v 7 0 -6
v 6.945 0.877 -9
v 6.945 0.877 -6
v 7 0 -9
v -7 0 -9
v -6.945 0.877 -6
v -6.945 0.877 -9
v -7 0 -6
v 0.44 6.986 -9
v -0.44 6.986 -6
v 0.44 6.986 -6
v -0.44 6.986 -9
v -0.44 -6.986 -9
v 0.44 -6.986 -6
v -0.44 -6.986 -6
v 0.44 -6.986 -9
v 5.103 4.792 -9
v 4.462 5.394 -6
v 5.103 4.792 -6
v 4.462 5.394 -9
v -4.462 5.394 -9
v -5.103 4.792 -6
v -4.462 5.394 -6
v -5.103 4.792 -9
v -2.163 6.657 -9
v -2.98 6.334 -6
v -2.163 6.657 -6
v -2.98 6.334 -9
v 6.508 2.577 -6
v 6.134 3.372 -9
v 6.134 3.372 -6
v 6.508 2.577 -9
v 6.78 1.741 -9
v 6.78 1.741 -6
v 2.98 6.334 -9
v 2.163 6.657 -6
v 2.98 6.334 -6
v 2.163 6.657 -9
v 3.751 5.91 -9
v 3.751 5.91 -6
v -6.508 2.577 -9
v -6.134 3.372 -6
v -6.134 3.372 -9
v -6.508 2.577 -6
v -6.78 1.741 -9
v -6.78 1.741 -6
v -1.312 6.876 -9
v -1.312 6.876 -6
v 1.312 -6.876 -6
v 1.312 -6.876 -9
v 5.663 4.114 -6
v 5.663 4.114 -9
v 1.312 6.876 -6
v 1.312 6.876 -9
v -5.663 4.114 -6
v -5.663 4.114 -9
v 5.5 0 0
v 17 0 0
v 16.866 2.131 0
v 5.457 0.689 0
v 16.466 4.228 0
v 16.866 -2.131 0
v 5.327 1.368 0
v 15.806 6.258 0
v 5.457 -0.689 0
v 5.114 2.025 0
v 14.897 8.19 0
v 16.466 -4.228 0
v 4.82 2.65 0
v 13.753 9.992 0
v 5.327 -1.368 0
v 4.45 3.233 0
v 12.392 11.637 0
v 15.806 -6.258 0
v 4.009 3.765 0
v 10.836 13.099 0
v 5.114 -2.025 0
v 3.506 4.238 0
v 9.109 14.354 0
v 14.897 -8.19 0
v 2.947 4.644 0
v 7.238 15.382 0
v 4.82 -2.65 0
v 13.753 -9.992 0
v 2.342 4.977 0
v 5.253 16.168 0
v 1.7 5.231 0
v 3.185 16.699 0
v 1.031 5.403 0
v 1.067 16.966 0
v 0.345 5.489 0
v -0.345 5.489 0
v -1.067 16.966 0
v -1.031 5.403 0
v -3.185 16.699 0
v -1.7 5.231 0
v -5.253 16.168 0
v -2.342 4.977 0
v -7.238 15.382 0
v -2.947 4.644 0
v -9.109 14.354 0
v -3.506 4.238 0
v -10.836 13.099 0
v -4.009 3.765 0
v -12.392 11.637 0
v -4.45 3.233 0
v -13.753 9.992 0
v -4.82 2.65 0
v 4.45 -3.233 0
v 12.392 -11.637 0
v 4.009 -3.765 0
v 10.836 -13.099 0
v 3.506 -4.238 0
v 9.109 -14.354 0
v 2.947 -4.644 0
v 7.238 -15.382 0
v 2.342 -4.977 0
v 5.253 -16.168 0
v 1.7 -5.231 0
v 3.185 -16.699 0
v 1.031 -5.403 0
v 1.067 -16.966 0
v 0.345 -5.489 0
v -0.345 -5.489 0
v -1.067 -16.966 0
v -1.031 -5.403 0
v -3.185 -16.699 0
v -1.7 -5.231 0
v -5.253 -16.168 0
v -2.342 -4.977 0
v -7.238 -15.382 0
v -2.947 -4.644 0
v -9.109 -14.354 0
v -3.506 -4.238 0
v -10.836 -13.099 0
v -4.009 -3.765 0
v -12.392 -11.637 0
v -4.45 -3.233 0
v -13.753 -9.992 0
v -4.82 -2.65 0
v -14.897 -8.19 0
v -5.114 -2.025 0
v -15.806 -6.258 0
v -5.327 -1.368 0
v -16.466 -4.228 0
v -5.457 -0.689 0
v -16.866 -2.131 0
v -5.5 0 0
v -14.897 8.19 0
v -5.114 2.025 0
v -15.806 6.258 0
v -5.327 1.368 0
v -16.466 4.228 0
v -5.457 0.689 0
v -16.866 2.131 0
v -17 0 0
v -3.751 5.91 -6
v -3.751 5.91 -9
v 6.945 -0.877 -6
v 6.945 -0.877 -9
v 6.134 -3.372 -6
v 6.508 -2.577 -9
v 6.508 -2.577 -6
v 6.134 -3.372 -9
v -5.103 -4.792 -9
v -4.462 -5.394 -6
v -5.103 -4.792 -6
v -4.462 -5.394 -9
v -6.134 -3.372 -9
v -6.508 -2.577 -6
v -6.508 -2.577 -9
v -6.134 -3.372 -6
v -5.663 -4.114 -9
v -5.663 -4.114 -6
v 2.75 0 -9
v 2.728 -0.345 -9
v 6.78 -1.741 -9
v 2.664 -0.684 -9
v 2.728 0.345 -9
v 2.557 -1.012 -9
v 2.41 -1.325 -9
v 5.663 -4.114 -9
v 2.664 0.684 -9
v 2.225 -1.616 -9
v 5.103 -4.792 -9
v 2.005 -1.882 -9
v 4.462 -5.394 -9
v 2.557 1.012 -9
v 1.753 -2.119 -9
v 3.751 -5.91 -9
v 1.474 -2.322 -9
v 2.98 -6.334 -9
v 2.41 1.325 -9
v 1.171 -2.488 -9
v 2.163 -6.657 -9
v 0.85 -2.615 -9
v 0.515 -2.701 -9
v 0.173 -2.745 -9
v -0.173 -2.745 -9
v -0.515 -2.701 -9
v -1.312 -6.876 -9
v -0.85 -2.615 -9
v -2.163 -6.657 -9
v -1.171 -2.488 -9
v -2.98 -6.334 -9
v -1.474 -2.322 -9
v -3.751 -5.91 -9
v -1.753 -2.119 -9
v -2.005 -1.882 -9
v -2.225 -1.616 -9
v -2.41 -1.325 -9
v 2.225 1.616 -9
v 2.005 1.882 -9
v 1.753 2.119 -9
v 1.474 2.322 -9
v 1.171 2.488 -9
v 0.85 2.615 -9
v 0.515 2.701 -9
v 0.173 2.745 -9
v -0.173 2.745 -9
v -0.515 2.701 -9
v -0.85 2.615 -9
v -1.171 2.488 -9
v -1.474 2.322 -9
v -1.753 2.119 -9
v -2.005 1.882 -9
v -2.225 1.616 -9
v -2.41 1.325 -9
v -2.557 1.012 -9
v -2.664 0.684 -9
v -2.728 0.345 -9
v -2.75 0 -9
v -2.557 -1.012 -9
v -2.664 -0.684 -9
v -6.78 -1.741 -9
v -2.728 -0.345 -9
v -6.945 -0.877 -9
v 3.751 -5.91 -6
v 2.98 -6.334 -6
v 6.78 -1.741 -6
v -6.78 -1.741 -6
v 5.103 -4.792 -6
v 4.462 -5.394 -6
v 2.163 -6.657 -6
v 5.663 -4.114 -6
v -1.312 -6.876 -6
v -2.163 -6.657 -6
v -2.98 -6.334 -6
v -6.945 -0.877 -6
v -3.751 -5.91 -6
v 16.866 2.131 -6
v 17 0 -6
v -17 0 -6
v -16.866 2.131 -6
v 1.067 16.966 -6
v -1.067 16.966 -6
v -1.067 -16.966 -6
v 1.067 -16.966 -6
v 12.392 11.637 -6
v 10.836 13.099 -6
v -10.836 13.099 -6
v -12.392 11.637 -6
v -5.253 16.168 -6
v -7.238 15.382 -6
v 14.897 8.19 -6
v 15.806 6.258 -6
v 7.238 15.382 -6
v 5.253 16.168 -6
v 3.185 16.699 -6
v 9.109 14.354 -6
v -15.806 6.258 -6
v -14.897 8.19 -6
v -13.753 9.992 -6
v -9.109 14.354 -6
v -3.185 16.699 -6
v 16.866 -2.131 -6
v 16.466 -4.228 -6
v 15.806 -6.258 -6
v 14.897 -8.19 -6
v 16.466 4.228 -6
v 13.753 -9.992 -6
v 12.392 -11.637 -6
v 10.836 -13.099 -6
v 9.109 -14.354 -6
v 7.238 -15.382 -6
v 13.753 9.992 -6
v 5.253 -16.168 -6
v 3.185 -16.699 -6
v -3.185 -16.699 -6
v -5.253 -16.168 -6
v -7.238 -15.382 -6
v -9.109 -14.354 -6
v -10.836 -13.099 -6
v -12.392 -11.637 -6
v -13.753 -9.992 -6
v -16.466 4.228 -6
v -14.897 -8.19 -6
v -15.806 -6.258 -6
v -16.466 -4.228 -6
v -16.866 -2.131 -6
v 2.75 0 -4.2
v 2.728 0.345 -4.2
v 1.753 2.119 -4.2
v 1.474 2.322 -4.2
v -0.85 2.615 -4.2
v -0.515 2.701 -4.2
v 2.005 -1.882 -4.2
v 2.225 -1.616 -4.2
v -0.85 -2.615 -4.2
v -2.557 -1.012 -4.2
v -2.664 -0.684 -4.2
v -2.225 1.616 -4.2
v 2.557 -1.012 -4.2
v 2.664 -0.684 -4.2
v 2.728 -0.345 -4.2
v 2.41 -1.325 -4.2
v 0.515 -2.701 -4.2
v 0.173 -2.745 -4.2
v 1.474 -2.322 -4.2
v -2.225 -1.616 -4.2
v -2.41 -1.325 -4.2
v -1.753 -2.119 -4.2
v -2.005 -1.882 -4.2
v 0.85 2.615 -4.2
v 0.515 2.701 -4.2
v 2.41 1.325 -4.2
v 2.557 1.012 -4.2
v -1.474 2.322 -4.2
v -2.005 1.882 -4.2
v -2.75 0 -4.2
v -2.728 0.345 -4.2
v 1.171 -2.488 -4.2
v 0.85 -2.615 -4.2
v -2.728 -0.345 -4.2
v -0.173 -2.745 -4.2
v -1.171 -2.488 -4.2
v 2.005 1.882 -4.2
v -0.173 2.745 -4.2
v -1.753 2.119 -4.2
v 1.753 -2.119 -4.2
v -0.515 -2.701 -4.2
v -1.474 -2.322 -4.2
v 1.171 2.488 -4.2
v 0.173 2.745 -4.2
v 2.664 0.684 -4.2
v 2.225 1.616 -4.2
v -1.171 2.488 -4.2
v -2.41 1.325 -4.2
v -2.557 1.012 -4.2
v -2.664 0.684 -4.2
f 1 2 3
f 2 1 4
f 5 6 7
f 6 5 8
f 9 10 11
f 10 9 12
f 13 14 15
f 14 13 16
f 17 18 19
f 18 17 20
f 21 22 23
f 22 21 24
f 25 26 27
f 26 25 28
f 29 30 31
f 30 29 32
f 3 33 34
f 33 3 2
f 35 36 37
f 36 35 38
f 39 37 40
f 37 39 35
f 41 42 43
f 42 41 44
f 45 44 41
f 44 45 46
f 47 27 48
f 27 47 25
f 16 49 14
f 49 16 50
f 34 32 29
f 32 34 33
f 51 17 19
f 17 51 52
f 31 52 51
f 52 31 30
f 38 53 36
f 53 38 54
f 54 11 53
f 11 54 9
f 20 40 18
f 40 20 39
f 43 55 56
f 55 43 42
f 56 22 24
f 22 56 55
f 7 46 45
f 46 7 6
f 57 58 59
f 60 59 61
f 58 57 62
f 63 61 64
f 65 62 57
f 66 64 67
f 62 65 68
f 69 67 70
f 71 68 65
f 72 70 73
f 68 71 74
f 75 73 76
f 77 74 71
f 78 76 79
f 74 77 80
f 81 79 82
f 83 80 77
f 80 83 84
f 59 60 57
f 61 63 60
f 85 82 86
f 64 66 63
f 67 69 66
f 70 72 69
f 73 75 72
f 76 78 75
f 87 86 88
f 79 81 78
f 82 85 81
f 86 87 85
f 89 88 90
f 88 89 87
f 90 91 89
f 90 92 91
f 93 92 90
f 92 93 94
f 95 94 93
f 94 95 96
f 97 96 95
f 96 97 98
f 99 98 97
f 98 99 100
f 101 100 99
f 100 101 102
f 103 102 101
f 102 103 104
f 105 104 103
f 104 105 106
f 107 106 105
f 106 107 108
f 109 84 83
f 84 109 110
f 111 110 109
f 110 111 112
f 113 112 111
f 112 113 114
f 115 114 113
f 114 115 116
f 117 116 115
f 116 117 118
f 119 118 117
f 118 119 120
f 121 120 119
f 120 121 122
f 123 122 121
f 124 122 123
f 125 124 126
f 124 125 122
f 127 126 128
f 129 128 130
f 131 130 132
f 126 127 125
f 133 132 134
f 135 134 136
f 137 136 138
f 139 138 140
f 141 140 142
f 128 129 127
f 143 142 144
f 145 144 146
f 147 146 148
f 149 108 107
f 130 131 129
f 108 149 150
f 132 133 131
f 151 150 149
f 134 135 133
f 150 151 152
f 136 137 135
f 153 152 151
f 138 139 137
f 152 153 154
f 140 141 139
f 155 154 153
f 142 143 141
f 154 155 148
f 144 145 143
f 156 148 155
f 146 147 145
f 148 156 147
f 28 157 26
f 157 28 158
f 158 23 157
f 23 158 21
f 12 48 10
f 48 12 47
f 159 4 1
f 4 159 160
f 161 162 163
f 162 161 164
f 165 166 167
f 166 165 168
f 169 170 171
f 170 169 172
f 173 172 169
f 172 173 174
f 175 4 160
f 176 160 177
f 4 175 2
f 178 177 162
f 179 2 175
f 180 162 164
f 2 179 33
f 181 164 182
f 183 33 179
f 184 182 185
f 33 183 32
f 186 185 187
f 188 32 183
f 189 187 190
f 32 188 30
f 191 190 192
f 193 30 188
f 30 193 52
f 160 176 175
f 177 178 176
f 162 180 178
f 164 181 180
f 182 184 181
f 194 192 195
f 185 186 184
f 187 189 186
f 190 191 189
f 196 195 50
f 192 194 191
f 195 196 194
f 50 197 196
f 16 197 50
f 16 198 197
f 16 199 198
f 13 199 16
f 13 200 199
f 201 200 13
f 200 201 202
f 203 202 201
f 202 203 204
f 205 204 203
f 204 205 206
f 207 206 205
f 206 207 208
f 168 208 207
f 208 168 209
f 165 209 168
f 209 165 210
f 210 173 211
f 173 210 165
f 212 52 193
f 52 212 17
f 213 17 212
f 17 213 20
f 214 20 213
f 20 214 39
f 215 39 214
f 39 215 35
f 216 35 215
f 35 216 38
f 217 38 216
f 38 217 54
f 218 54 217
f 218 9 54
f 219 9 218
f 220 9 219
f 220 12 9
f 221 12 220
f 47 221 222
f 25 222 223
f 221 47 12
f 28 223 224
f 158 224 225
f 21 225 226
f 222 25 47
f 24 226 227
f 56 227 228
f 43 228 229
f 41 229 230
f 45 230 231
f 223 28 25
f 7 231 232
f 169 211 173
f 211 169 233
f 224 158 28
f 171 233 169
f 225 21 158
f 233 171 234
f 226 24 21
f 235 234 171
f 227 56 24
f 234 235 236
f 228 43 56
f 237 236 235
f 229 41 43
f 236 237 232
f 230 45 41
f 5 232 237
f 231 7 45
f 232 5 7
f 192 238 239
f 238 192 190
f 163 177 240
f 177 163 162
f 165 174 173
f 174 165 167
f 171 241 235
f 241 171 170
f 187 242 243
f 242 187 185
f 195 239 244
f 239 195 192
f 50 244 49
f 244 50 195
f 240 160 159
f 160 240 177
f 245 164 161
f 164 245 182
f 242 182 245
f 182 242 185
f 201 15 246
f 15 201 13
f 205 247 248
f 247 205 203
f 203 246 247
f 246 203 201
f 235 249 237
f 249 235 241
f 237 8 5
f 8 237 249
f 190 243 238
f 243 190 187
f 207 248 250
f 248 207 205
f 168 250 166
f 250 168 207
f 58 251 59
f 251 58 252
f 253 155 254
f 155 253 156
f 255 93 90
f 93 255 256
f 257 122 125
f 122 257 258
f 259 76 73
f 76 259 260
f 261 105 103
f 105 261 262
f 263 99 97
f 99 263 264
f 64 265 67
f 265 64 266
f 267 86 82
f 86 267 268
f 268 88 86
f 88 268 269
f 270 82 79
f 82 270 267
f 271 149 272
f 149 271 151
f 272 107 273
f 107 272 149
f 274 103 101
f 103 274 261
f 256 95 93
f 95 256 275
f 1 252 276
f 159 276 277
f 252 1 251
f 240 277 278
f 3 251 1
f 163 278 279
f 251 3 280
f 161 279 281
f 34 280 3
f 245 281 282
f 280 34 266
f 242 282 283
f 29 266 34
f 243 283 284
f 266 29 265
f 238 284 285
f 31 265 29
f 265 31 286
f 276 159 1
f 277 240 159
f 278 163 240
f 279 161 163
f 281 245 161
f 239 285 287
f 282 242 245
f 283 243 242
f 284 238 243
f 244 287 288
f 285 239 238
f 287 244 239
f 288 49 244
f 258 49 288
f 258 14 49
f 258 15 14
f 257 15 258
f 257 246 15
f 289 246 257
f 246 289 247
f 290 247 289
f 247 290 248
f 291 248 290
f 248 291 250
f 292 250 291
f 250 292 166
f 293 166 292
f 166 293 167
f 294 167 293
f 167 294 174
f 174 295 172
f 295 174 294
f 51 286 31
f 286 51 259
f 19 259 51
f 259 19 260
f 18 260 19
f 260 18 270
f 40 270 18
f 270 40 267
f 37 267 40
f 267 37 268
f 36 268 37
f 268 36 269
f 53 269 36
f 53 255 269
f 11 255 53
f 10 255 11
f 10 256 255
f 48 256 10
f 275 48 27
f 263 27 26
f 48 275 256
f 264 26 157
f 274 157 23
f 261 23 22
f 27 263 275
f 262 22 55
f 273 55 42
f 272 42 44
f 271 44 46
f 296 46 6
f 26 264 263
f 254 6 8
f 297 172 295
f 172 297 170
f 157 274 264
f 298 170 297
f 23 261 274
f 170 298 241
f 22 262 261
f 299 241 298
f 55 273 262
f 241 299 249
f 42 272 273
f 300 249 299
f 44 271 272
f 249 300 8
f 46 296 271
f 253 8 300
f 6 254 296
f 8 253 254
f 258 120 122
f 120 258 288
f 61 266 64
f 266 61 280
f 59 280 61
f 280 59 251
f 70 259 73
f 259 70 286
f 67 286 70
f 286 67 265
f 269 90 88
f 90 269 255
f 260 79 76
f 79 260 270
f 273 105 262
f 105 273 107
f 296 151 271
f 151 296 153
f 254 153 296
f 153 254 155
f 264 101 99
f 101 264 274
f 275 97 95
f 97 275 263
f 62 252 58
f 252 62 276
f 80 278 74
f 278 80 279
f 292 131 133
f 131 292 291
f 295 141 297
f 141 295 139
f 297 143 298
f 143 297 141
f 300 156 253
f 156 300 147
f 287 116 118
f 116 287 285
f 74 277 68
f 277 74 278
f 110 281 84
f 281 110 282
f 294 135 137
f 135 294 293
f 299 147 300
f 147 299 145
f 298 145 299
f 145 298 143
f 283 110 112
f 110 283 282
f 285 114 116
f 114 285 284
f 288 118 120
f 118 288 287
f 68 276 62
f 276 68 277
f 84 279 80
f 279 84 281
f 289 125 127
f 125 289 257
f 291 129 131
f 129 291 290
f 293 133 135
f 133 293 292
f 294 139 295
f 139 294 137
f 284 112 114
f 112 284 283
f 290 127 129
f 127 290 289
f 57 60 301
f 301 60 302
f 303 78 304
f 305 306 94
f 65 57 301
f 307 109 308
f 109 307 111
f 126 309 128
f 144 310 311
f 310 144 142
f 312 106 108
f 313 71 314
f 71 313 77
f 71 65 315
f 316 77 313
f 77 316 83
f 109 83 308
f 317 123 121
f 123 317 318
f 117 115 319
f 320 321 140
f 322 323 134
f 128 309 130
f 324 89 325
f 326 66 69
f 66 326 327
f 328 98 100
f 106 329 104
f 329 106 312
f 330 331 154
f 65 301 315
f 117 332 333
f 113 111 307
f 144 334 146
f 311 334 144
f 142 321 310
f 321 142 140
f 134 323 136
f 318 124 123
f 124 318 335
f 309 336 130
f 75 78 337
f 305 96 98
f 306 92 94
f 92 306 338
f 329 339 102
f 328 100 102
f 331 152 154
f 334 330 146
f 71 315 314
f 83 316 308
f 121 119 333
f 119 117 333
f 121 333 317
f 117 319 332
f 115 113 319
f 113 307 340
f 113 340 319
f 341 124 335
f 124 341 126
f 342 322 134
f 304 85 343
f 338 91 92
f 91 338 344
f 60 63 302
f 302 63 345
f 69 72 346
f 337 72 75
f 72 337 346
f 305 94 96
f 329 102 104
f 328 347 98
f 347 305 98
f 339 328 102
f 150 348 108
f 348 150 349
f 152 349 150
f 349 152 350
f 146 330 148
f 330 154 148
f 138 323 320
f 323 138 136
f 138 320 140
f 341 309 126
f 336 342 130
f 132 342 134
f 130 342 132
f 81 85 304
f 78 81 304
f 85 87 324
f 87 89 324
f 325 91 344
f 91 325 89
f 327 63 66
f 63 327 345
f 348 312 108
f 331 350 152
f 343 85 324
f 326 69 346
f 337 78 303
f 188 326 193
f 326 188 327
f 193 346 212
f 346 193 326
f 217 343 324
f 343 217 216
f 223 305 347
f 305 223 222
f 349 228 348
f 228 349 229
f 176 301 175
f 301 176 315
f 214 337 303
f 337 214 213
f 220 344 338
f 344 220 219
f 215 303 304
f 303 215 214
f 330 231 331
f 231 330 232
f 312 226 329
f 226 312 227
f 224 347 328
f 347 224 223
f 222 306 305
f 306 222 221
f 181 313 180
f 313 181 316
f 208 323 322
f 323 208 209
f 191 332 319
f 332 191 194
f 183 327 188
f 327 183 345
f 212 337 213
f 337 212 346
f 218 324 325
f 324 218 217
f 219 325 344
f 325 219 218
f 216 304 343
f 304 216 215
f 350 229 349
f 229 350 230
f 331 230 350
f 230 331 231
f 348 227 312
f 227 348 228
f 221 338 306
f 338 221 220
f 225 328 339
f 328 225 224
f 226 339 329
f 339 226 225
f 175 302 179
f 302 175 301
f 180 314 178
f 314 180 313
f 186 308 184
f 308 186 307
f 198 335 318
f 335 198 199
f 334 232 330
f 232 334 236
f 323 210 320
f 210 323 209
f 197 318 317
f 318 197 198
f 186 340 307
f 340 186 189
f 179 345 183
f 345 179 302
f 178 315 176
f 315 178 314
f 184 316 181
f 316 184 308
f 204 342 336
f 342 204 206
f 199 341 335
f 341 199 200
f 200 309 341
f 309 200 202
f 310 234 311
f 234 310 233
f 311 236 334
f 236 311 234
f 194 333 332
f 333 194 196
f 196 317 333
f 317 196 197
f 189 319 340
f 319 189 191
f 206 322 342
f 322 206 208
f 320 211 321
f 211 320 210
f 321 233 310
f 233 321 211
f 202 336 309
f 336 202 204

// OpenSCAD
$fn = 50;


difference() {
	union() {
		translate(v = [0, 0, -9.0000000000]) {
			cylinder(h = 9, r = 7.0000000000);
		}
		translate(v = [0, 0, -6.0000000000]) {
			cylinder(h = 6, r = 17.0000000000);
		}
	}
	union() {
		translate(v = [0, 0, 0]) {
			rotate(a = [0, 0, 0]) {
				difference() {
					union() {
						#translate(v = [0, 0, -9.0000000000]) {
							cylinder(h = 9, r = 2.2500000000);
						}
						#translate(v = [0, 0, -4.2000000000]) {
							cylinder(h = 4.2000000000, r = 7.0000000000, r1 = 2.7500000000, r2 = 5.5000000000);
						}
						#translate(v = [0, 0, -9.0000000000]) {
							cylinder(h = 9, r = 2.7500000000);
						}
						#translate(v = [0, 0, -9.0000000000]) {
							cylinder(h = 9, r = 2.2500000000);
						}
					}
					union();
				}
			}
		}
	}
}
